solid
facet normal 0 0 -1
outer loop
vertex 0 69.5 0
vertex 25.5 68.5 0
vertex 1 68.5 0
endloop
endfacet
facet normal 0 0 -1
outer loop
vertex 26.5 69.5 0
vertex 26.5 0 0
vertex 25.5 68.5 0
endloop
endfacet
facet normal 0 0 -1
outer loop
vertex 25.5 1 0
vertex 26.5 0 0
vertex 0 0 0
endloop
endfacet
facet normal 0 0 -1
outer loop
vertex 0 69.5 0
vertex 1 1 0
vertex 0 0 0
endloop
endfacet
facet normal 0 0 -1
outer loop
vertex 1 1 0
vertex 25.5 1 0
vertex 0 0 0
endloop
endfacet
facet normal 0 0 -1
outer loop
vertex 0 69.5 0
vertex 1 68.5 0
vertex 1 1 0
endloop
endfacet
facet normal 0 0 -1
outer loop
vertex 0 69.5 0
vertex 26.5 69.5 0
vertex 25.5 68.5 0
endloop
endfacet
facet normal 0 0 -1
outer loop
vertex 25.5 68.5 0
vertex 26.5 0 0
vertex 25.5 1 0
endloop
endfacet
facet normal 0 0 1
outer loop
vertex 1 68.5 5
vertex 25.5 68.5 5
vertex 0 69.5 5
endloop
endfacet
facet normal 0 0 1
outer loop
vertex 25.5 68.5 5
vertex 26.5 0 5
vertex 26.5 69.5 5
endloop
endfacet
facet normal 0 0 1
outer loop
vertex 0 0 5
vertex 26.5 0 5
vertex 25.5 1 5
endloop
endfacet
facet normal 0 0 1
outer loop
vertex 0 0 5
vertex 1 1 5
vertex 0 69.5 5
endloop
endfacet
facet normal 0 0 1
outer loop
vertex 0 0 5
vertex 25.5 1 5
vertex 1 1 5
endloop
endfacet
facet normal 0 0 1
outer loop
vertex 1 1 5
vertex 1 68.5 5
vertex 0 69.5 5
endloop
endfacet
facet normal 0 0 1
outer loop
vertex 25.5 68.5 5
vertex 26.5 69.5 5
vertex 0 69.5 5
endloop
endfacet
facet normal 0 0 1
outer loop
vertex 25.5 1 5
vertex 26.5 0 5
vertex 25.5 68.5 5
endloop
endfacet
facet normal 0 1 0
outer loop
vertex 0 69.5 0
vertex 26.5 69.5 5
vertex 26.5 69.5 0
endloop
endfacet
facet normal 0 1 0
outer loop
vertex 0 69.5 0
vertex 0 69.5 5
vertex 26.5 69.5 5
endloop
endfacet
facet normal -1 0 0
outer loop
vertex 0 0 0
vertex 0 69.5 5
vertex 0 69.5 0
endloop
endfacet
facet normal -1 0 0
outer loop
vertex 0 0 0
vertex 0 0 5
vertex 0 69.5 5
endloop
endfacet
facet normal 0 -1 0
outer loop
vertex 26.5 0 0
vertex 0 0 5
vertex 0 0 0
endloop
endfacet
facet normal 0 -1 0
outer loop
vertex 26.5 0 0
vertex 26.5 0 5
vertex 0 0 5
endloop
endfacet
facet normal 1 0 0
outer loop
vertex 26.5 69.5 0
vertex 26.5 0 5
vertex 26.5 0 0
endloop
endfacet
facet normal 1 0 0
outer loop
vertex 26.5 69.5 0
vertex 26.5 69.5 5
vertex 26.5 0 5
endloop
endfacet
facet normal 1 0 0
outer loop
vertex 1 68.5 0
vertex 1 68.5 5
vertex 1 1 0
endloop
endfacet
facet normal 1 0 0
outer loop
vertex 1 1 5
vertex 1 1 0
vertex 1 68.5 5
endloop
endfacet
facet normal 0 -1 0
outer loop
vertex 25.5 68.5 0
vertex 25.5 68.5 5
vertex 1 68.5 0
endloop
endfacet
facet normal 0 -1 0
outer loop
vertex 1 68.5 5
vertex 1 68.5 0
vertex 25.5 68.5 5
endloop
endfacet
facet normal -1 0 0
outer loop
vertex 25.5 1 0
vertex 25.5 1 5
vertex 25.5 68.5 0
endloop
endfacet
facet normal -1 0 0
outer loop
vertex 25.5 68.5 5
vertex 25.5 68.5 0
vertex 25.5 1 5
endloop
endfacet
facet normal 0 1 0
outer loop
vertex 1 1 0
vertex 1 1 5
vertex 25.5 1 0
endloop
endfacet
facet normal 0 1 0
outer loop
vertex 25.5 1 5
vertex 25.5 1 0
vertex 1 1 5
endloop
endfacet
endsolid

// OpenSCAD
/* Diffuser Lense For A Particular Project (OpenSCAD) */
tol = 0.5;

/* Camera Chamber */
camchamberw = 27 - tol;
camchamberh = 70 - tol;

/* LED PCB */
holedia = 16 + 2;
thickness=5;

/* Enclosure hole */
enclosurew = 19;

union()
{
  linear_extrude(height = thickness) {
     difference() 
    {
       offset(r = 0) 
       {
        square(size = [camchamberw,camchamberh], center = false);
       }
       offset(r = -1) 
       {
       square(size = [camchamberw,camchamberh], center = false);
       }
     }
  }
  %difference()
  {
    translate([camchamberw/2,camchamberh/2, 0])
      cylinder(thickness,d=holedia+7);
    translate([camchamberw/2,camchamberh/2,-thickness/2])
      cylinder(thickness*2,d=holedia);
  }
}
